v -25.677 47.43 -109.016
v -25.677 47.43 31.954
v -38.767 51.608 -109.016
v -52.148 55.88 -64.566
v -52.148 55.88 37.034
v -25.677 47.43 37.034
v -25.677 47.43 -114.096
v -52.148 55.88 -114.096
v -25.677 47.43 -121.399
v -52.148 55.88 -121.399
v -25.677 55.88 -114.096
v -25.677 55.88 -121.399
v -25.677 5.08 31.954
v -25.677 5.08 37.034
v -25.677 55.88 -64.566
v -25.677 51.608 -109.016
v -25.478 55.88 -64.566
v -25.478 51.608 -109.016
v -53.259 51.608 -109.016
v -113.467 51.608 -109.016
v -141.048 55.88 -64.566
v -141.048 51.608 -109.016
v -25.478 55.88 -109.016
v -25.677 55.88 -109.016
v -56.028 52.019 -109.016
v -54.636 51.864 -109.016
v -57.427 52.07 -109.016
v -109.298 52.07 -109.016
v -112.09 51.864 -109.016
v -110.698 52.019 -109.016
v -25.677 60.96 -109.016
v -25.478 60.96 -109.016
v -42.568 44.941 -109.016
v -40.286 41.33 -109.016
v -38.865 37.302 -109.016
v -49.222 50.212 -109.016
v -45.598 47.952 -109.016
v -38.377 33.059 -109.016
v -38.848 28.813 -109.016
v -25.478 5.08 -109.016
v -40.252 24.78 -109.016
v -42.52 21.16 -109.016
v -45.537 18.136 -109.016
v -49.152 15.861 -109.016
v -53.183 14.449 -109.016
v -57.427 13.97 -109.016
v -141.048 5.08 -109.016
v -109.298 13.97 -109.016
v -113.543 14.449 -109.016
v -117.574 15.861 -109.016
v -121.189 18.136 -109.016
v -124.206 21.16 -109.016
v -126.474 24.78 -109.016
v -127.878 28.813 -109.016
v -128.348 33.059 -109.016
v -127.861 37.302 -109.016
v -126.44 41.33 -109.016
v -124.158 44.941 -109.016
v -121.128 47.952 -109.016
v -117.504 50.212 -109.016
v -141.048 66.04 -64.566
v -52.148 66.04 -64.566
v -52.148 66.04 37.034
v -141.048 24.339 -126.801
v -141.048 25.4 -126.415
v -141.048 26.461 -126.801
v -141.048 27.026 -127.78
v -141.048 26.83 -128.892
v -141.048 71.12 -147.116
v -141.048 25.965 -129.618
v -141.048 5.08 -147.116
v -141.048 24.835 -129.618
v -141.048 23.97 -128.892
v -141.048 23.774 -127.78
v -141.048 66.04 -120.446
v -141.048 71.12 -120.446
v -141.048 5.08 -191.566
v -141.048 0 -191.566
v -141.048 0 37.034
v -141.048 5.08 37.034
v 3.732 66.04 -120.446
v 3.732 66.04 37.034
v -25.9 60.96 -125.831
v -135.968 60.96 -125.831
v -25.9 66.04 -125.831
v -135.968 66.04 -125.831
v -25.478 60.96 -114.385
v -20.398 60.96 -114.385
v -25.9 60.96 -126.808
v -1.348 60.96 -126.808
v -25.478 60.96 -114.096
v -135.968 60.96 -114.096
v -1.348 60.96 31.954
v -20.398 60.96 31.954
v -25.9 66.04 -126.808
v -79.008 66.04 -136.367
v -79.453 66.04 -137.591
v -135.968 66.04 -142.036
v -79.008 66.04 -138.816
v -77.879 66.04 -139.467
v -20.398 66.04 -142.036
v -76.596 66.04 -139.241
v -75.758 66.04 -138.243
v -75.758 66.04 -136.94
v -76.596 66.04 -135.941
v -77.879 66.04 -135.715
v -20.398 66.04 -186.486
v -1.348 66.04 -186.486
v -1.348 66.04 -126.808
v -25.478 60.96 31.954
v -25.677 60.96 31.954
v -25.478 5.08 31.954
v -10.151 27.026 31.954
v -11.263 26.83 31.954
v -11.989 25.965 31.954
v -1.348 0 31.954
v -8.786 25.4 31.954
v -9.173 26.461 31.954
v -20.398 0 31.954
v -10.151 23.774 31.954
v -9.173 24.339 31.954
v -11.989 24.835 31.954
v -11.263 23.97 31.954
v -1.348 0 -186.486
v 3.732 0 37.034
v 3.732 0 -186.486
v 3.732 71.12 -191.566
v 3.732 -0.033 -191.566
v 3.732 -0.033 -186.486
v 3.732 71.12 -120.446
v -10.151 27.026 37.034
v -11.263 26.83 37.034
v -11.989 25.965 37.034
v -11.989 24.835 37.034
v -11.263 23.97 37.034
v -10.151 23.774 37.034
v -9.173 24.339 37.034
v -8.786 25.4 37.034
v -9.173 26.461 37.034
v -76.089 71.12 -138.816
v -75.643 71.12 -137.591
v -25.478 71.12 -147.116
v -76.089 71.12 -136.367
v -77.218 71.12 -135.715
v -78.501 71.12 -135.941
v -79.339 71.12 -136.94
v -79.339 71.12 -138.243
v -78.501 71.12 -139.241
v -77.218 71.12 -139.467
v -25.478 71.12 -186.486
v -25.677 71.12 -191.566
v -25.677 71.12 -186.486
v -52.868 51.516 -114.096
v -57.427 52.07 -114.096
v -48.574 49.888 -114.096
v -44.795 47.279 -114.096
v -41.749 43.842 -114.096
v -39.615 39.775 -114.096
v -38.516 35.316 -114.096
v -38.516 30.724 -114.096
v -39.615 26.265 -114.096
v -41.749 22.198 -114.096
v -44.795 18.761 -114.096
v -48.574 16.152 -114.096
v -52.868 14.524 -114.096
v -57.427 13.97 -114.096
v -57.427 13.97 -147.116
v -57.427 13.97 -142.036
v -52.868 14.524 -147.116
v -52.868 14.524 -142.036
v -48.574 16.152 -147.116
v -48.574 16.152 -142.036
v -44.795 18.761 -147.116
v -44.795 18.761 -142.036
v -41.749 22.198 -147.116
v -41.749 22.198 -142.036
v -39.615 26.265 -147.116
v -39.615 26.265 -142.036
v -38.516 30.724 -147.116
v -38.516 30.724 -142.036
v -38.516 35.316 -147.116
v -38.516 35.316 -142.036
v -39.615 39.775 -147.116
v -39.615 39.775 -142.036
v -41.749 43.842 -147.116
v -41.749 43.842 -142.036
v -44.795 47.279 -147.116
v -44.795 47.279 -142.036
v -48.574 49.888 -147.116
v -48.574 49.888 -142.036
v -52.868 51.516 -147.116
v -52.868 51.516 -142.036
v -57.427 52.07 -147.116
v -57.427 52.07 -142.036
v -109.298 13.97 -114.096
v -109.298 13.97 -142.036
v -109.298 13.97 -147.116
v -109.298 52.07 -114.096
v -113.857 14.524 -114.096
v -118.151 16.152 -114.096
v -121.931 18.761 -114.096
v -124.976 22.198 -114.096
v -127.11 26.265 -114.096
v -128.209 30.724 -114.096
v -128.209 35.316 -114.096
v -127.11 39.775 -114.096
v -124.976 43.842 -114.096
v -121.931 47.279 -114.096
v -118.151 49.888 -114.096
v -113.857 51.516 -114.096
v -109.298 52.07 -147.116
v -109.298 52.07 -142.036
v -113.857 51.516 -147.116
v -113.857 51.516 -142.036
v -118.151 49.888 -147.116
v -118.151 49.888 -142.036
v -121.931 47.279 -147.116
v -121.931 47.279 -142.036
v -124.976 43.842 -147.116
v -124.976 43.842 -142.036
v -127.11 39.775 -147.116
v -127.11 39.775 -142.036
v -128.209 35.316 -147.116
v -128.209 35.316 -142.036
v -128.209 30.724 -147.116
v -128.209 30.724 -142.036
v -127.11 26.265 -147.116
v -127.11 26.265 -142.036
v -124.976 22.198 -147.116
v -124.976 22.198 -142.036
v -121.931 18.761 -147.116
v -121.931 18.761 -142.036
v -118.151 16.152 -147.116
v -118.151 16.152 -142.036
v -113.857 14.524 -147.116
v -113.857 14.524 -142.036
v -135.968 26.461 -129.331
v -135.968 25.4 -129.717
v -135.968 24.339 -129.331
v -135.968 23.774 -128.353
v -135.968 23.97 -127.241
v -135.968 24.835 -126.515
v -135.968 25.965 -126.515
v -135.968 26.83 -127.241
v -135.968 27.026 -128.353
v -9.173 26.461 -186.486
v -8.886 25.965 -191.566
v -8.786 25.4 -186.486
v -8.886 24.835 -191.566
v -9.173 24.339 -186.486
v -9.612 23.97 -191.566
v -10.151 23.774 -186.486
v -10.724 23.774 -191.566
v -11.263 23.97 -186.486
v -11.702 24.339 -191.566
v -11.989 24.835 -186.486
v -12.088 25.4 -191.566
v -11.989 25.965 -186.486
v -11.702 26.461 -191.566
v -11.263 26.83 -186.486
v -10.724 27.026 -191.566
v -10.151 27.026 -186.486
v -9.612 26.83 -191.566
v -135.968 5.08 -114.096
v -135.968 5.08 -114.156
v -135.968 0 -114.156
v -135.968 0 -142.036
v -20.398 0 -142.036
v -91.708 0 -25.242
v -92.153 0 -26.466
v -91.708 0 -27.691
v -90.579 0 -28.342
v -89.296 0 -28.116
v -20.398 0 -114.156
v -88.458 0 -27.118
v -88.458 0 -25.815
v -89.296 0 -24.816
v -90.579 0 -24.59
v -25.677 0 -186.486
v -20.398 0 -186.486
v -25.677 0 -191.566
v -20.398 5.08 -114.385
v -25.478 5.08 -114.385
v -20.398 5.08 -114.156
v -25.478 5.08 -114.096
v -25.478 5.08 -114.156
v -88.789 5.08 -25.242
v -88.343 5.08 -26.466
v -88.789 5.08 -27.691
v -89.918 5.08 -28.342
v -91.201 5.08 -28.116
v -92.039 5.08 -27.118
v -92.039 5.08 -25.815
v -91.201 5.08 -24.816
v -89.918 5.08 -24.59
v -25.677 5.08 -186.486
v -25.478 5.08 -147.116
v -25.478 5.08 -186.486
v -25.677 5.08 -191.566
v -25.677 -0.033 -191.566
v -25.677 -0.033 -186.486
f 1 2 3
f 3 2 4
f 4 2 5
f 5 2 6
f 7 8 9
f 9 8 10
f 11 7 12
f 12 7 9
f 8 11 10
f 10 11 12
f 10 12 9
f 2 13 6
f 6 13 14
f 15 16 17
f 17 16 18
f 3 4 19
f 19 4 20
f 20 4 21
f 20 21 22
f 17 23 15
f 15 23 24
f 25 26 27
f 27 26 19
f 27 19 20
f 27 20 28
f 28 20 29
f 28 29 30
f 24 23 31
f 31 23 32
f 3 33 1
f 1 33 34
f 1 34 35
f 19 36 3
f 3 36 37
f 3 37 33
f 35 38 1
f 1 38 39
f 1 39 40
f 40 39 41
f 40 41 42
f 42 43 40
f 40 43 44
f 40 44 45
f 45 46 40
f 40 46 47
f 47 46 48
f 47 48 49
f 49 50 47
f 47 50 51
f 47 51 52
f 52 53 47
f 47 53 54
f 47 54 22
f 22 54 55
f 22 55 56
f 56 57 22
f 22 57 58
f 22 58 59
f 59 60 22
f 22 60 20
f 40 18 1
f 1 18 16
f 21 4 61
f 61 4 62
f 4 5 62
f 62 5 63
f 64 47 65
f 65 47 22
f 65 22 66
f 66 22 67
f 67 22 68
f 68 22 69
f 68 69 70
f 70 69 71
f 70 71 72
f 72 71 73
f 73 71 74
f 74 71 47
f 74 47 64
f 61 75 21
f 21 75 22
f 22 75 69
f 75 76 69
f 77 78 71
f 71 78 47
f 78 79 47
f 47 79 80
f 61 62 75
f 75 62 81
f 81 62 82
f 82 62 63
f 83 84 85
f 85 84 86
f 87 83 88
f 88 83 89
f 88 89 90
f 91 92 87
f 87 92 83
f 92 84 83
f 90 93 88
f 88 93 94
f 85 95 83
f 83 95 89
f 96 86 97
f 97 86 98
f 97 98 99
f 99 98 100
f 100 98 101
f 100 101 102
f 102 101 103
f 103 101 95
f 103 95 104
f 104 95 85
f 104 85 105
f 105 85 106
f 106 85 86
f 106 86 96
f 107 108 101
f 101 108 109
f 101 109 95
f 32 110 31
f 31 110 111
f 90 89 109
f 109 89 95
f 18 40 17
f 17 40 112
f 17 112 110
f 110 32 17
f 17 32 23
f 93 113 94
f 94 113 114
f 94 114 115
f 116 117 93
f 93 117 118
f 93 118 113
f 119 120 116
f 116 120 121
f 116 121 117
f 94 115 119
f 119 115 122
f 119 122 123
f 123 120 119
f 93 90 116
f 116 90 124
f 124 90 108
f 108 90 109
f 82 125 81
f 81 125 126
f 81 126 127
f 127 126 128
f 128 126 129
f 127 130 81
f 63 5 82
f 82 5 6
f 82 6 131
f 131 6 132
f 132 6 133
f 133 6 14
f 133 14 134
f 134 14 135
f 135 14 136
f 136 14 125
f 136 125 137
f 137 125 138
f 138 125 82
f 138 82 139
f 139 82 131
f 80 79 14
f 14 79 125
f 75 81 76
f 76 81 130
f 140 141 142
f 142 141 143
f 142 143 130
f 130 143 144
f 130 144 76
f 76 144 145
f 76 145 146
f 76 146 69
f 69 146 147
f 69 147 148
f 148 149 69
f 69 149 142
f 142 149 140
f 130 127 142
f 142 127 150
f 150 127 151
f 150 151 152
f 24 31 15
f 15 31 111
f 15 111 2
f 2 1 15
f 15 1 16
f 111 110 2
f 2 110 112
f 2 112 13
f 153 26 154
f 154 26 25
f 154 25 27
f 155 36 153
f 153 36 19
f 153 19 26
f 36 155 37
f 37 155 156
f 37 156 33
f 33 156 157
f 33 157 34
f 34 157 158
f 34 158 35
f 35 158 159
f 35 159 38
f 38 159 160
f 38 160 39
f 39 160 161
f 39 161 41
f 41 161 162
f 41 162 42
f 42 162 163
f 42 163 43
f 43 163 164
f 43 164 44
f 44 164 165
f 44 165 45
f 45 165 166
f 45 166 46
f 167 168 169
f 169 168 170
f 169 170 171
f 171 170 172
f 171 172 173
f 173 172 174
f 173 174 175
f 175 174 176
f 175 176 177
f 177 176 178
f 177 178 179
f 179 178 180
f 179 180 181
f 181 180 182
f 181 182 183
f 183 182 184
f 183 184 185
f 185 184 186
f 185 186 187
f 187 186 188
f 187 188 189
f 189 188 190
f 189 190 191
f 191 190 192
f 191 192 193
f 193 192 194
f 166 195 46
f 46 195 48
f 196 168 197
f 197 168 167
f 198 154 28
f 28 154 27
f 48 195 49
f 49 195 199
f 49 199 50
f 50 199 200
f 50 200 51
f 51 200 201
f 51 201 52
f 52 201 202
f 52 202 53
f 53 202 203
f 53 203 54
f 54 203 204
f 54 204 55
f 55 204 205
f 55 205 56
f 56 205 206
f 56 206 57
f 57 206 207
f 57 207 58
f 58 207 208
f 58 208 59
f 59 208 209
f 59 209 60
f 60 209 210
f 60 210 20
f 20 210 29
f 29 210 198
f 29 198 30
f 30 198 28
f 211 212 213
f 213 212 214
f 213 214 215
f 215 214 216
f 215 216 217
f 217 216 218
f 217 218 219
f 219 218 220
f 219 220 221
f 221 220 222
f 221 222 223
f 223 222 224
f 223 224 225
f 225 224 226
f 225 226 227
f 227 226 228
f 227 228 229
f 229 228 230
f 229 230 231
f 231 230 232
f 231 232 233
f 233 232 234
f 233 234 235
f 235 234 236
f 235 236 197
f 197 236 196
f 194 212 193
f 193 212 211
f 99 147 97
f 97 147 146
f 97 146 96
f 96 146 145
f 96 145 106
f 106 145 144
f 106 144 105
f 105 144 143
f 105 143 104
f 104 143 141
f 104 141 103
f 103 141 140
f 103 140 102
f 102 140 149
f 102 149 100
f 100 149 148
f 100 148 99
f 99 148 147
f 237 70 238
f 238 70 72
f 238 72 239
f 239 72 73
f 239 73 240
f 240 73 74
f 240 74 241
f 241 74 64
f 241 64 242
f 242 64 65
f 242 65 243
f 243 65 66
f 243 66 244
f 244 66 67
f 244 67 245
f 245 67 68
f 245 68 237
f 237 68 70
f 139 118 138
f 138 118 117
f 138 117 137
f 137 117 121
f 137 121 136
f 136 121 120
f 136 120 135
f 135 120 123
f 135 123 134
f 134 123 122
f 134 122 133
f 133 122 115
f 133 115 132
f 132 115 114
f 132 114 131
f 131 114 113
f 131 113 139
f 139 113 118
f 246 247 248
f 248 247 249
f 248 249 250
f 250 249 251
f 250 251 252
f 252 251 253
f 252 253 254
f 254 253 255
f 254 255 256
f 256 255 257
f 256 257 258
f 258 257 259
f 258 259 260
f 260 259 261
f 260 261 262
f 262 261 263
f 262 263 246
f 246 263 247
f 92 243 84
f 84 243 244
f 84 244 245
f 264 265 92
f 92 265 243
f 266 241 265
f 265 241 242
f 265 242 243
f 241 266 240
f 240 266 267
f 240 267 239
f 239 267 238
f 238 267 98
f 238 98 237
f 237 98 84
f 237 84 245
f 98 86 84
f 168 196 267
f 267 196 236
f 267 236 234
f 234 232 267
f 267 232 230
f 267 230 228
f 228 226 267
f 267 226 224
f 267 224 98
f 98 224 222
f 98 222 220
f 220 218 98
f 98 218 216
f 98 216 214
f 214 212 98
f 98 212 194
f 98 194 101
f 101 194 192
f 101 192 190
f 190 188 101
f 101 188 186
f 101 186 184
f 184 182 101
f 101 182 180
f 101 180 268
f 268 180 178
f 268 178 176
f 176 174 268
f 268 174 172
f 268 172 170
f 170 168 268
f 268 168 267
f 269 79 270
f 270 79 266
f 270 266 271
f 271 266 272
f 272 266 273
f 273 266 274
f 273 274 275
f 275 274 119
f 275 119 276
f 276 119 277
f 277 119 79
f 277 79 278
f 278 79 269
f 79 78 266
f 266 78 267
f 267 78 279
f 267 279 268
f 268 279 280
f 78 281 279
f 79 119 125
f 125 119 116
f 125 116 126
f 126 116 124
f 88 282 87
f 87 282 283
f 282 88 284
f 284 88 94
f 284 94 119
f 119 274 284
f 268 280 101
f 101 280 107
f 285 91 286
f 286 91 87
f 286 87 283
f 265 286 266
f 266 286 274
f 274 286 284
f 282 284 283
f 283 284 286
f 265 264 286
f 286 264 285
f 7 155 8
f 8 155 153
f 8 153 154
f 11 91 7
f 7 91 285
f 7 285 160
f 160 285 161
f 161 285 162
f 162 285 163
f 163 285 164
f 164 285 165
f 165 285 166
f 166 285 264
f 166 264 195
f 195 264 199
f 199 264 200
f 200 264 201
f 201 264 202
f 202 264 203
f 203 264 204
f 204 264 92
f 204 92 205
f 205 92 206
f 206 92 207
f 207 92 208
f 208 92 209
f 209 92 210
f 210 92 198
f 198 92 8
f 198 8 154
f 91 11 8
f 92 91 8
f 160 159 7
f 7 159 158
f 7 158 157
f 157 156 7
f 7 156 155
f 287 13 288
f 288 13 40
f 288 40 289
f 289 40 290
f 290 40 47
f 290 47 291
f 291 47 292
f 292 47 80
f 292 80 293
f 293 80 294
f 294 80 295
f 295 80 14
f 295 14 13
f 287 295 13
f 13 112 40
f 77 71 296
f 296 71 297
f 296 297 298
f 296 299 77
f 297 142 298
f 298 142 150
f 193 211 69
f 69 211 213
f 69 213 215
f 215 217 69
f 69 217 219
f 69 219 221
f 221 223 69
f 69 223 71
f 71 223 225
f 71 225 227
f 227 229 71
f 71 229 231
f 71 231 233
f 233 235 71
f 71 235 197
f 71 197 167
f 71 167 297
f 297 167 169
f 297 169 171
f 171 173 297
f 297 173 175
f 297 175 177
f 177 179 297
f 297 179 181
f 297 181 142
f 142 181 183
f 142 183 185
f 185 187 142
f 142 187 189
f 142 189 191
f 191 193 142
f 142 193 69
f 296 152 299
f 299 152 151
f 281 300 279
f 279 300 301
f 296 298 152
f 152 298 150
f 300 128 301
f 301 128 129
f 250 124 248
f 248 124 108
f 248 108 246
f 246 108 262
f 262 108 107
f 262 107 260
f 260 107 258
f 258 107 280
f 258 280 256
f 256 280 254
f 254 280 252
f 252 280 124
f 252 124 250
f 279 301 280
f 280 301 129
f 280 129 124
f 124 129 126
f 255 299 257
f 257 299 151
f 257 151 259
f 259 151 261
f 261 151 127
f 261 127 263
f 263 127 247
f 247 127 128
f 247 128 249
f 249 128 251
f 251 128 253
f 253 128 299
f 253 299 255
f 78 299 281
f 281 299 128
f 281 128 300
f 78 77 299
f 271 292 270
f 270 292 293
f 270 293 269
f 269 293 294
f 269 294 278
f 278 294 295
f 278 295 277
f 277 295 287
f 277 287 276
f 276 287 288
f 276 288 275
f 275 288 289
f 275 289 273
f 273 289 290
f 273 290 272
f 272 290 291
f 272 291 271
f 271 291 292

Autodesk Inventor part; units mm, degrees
ref_plane "YZ Plane" through (0, 0, 0) normal (1, 0, 0) x (0, 1, 0)
ref_plane "XZ Plane" through (0, 0, 0) normal (0, 1, 0) x (-1, 0, 0)
ref_plane "XY Plane" through (0, 0, 0) normal (0, 0, 1) x (1, 0, 0)
sketch "Sketch51" plane through (0, 0, 0) normal (0, 1, 0) x (-1, 0, 0)
  line L0 (1.3484, 37.0338) -> (-3.7316, 37.0338)
  line L1 (-3.7316, 37.0338) -> (-3.7316, -191.5662)
  line L2 (-3.7316, -191.5662) -> (1.3484, -191.5662)
  line L3 (1.3484, -191.5662) -> (1.3484, 37.0338)
  point P0 (0, 0)
  dimension "d172" = 5.08
  dimension "d173" = 228.6
extrude "Extrusion37" add sketch "Sketch51" along normal blind 71.12
sketch "Sketch52" plane through (-1.3484, 0, 37.0338) normal (0, 0, 1) x (1, 0, 0)
  line L0 (5.08, 0) -> (5.08, 71.12) projected
  line L1 (5.08, 71.12) -> (-24.13, 71.12)
  line L2 (-24.13, 71.12) -> (-24.13, 66.04)
  line L3 (-24.13, 66.04) -> (5.08, 66.04)
  line L4 (5.08, 66.04) -> (5.08, 71.12)
  point P0 (1.3484, 0)
  dimension "d176" = 5.08
  dimension "d177" = 29.21
extrude "Extrusion38" add sketch "Sketch52" against normal blind 228.6
sketch "Sketch54" plane through (0, 0, 0) normal (0, -1, 0) x (1, 0, 0)
  line L0 (-20.3984, 37.0338) -> (-141.0484, 37.0338)
  line L1 (-141.0484, 37.0338) -> (-141.0484, -191.5662)
  line L2 (-141.0484, -191.5662) -> (-20.3984, -191.5662)
  line L3 (-20.3984, -191.5662) -> (-20.3984, 37.0338)
  line L4 (-25.4784, 37.0338) -> (-1.3484, 37.0338) projected
  line L5 (-1.3484, -191.5662) -> (-25.4784, -191.5662) projected
  line L6 (-1.3484, -191.5662) -> (-1.3484, 37.0338) projected
  point P0 (0, 0)
  dimension "d180" = 0
  dimension "d181" = 0
  dimension "d182" = 19.05
  dimension "d183" = 120.65
extrude "Extrusion39" add sketch "Sketch54" against normal blind 5.08 contours L3 L2 L1 L0
sketch "Sketch55" plane through (-1.3484, 0, 37.0338) normal (0, 0, 1) x (1, 0, 0)
  line L0 (-139.7, 5.08) -> (-19.05, 5.08) projected
  line L1 (-24.13, 66.04) -> (-24.13, 71.12) projected
  line L2 (-19.05, 5.08) -> (-24.13, 5.08)
  line L3 (-24.13, 5.08) -> (-24.13, 71.12)
  line L4 (-24.13, 71.12) -> (-19.05, 71.12)
  line L5 (-19.05, 71.12) -> (-19.05, 5.08)
  point P0 (1.3484, 0)
extrude "Extrusion40" add sketch "Sketch55" against normal blind 228.6
sketch "Sketch56" plane through (3.7316, 0, 37.0338) normal (0, 0, 1) x (1, 0, 0)
  line L0 (-29.4089, 71.12) -> (0, 71.12)
  line L1 (0, 71.12) -> (0, 0)
  line L2 (0, 0) -> (-29.4089, 0)
  line L3 (-29.4089, 0) -> (-29.4089, 71.12)
  line L4 (0, 71.12) -> (-29.21, 71.12) projected
  point P0 (-3.7316, 0)
  dimension "d275" = 0
extrude "Extrusion41" add sketch "Sketch56" against normal blind 5.08
sketch "Sketch57" plane through (3.7316, 0, -191.5662) normal (0, 0, -1) x (-1, 0, 0)
  line L0 (29.4089, 5.08) -> (29.4089, 71.12) projected
  line L1 (29.4089, 71.12) -> (0, 71.12)
  line L2 (0, 71.12) -> (0, -0.0331)
  line L3 (0, -0.0331) -> (29.4089, -0.0331)
  line L4 (29.4089, -0.0331) -> (29.4089, 71.12)
  point P0 (3.7316, 0)
extrude "Extrusion42" add sketch "Sketch57" against normal blind 5.08
sketch "Sketch58" plane through (0, 71.12, 0) normal (0, 1, 0) x (1, 0, 0)
  line L0 (-25.4784, -31.9538) -> (-25.4784, 186.4862) projected
  line L1 (-141.0484, 191.5662) -> (-141.0484, -37.0338) projected
  line L2 (-25.4784, 109.0162) -> (-141.0484, 109.0162)
  line L3 (-141.0484, 109.0162) -> (-141.0484, 147.1162)
  line L4 (-141.0484, 147.1162) -> (-25.4784, 147.1162)
  line L5 (-25.4784, 147.1162) -> (-25.4784, 109.0162)
  line L6 (-25.6773, 191.5662) -> (-141.0484, 191.5662) projected
  point P0 (0, 0)
  dimension "d192" = 38.1
  dimension "d193" = 44.45
extrude "Extrusion43" add sketch "Sketch58" against normal blind 5.08
sketch "Sketch59" plane through (-141.0484, 71.12, -147.1162) normal (-1, 0, 0) x (0, 0, 1)
  line L0 (0, 0) -> (0, -5.08) projected
  line L1 (184.15, -71.12) -> (-44.45, -71.12) projected
  line L2 (0, 0) -> (5.08, 0)
  line L3 (5.08, 0) -> (5.08, -71.12)
  line L4 (5.08, -71.12) -> (0, -71.12)
  line L5 (0, -71.12) -> (0, 0)
  line L6 (38.1, 0) -> (38.1, -5.08) projected
  line L7 (38.1, 0) -> (33.02, 0)
  line L8 (33.02, 0) -> (33.02, -71.12)
  line L9 (33.02, -71.12) -> (38.1, -71.12)
  line L10 (38.1, -71.12) -> (38.1, 0)
  point P0 (147.1162, -71.12)
  dimension "d196" = 5.08
  dimension "d197" = 5.08
extrude "Extrusion44" add sketch "Sketch59" against normal blind 120.65
sketch "Sketch60" plane through (-141.0484, 0, -191.5662) normal (-1, 0, 0) x (0, 0, 1)
  line L0 (49.53, 5.08) -> (77.47, 5.08) projected
  line L1 (5.08, 0) -> (223.52, 0) projected
  line L2 (49.53, 5.08) -> (77.4104, 5.08)
  line L3 (77.4104, 5.08) -> (77.4104, 0)
  line L4 (77.4104, 0) -> (49.53, 0)
  line L5 (49.53, 0) -> (49.53, 5.08)
  point P0 (191.5662, 0)
extrude "Extrusion45" cut sketch "Sketch60" against normal blind 120.65
sketch "Sketch61" plane through (-25.4784, 66.04, -142.0362) normal (-1, 0, 0) x (0, 0, 1)
  line L0 (0, -66.04) -> (0, 0) projected
  line L1 (27.94, 0) -> (27.94, -60.96) projected
  line L2 (27.94, 0) -> (0, 0) projected
  line L3 (-44.45, -66.04) -> (173.99, -66.04) projected
  line L4 (0, 0) -> (27.6512, 0)
  line L5 (27.6512, 0) -> (27.6512, -66.04)
  line L6 (27.6512, -66.04) -> (0, -66.04)
  line L7 (0, -66.04) -> (0, 0)
  point P0 (142.0362, -66.04)
extrude "Extrusion46" cut sketch "Sketch61" against normal blind 5.08
sketch "Sketch62" plane through (-141.0484, 5.08, -109.0162) normal (-1, 0, 0) x (0, 0, 1)
  line L0 (-33.02, -5.08) -> (-82.55, -5.08) projected
  line L1 (-38.1, 66.04) -> (-38.1, 0) projected
  line L2 (0, 66.04) -> (0, 0) projected
  line L3 (-5.1396, 0) -> (-5.1396, -5.08) projected
  line L4 (146.05, -5.08) -> (-5.1396, -5.08) projected
  line L5 (146.05, -5.08) -> (146.05, 0) projected
  line L6 (0, 0) -> (146.05, 0) projected
  line L7 (0, 66.04) -> (0, 0) projected
  line L8 (0, 66.04) -> (-38.1, 66.04) projected
  line L9 (-38.1, 66.04) -> (-38.1, 0) projected
  line L10 (-82.55, 0) -> (-38.1, 0) projected
  line L11 (-82.55, -5.08) -> (-82.55, 0) projected
  line L12 (-33.02, -5.08) -> (-82.55, -5.08) projected
  line L13 (-33.02, -5.08) -> (-33.02, 60.96) projected
  line L14 (-5.08, 60.96) -> (-33.02, 60.96) projected
  line L15 (-5.08, 60.96) -> (-5.08, 0) projected
  line L16 (0, 66.04) -> (-34.1859, 66.04)
  line L17 (-34.1859, 66.04) -> (-34.1859, -5.08)
  line L18 (-34.1859, -5.08) -> (0, -5.08)
  line L19 (0, -5.08) -> (0, 66.04)
  line L20 (-5.1396, 0) -> (-5.08, 0) projected
  point P0 (109.0162, -5.08)
extrude "Extrusion47" add sketch "Sketch62" against normal blind 5.08 contours L0 L17 L8 L2 L19 L4 L3 L20 L15 L14 L13 | L13 L14 L15 L20 L3 L18
sketch "Sketch63" plane through (3.7316, 0, -191.5662) normal (0, 0, -1) x (-1, 0, 0)
  line L0 (144.78, 0) -> (29.4089, 0) projected
  line L1 (29.4089, 5.08) -> (29.4089, 71.12) projected
  point P0 (3.7316, 0)
  point P1 (14.1689, 25.4)
  point P2 (0, 0)
  dimension "d206" = 25.4
  dimension "d207" = 15.24
hole "Hole8" at (-10.4373, 25.4, -191.5662) direction (0, 0, 1) diameter 3.302 end through all
sketch "Sketch64" plane through (-141.0484, 0, -191.5662) normal (-1, 0, 0) x (0, 0, 1)
  line L0 (228.6, 0) -> (0, 0) projected
  line L1 (44.45, 71.12) -> (44.45, 5.08) projected
  point P0 (191.5662, 0)
  point P1 (63.5, 25.4)
  dimension "d215" = 25.4
  dimension "d216" = 19.05
hole "Hole9" at (-141.0484, 25.4, -128.0662) direction (1, 0, 0) diameter 3.302 depth 25.4 tip angle 118.188
sketch "Sketch66" plane through (0, 71.12, 0) normal (0, 1, 0) x (1, 0, 0)
  line L0 (-141.0484, 109.0162) -> (-141.0484, 147.1162) projected
  line L1 (-25.4784, 109.0162) -> (-141.0484, 109.0162) projected
  line L2 (-141.0484, 147.1162) -> (-25.4784, 147.1162) projected
  point P0 (0, 0)
  point P1 (-77.5484, 137.5912)
  dimension "d227" = 9.525
hole "Hole10" at (-77.5484, 71.12, -137.5912) direction (0, -1, 0) diameter 3.81 depth 25.4 tip angle 118.188
sketch "Sketch69" plane through (-141.0484, 71.12, -109.0162) normal (0, 0, 1) x (1, 0, 0)
  line L0 (31.75, -38.1) -> (83.6211, -38.1) construction
  line L1 (31.75, -19.05) -> (83.6211, -19.05)
  line L2 (83.6211, -57.15) -> (31.75, -57.15)
  arc A0 (31.75, -19.05) -> (31.75, -57.15) centre (31.75, -38.1) ccw
  arc A1 (83.6211, -57.15) -> (83.6211, -19.05) centre (83.6211, -38.1) ccw
  line L3 (0, 0) -> (0, -66.04) projected
  line L4 (115.3711, -66.04) -> (115.3711, 0) projected
  line L5 (115.57, 0) -> (0, 0) projected
  point P0 (141.0484, -71.12)
  point P1 (57.6856, -38.1)
  dimension "d252" = 31.75
  dimension "d253" = 31.75
  dimension "d254" = 38.1
  dimension "d255" = 19.05
extrude "Extrusion49" cut sketch "Sketch69" against normal blind 230.1875
sketch "Sketch70" plane through (0, 71.12, 0) normal (0, 1, 0) x (1, 0, 0)
  line L0 (-20.3984, -31.9538) -> (-20.3984, 114.385) projected
  line L1 (-25.4784, -31.9538) -> (-25.4784, 109.0162) projected
  line L2 (-25.4784, 109.0162) -> (-141.0484, 109.0162) projected
  line L3 (-141.0484, 191.5662) -> (-141.0484, -37.0338) projected
  line L4 (-141.0484, -37.0338) -> (-25.6773, -37.0338) projected
  line L5 (-141.0484, 109.0162) -> (-141.0484, 147.1162) projected
  line L6 (-141.0484, 109.0162) -> (-25.6773, 109.0162)
  line L7 (-25.6773, 109.0162) -> (-25.6773, -37.0338)
  line L8 (-25.6773, -37.0338) -> (-141.0484, -37.0338)
  line L9 (-141.0484, -37.0338) -> (-141.0484, 109.0162)
  point P0 (0, 0)
extrude "Extrusion50" add sketch "Sketch70" against normal blind 15.24
sketch "Sketch71" plane through (0, 71.12, 0) normal (0, 1, 0) x (1, 0, 0)
  line L0 (-25.6773, -37.0338) -> (3.7316, -37.0338) projected
  line L1 (3.7316, -37.0338) -> (-155.1721, -37.0338)
  line L2 (-155.1721, -37.0338) -> (-155.1721, 120.4462)
  line L3 (-155.1721, 120.4462) -> (3.7316, 120.4462)
  line L4 (3.7316, 120.4462) -> (3.7316, -37.0338)
  point P0 (0, 0)
  dimension "d260" = 157.48
extrude "Extrusion51" cut sketch "Sketch71" against normal blind 5.08
sketch "Sketch72" plane through (0, 66.04, 0) normal (0, 1, 0) x (1, 0, 0)
  line L0 (3.7316, -37.0338) -> (3.7316, -31.9538) projected
  line L1 (3.7316, -37.0338) -> (-25.8998, -37.0338)
  line L2 (-25.8998, -37.0338) -> (-25.8998, 126.8083)
  line L3 (-25.8998, 126.8083) -> (3.7316, 126.8083)
  line L4 (3.7316, 126.8083) -> (3.7316, -37.0338)
  point P0 (0, 0)
extrude "Extrusion52" add sketch "Sketch72" against normal blind 5.08
sketch "Sketch73" plane through (0, 66.04, 0) normal (0, 1, 0) x (1, 0, 0)
  line L0 (-137.7579, 102.3229) -> (-23.4148, 102.3229)
  line L1 (-23.4148, 102.3229) -> (-23.4148, 125.8312)
  line L2 (-23.4148, 125.8312) -> (-137.7579, 125.8312)
  line L3 (-137.7579, 125.8312) -> (-137.7579, 102.3229)
  point P0 (0, 0)
extrude "Extrusion53" add sketch "Sketch73" against normal blind 5.08
sketch "Sketch74" plane through (0, 66.04, 0) normal (0, 1, 0) x (1, 0, 0)
  line L0 (-141.0484, -37.0338) -> (-141.0484, 120.4462) projected
  line L1 (-141.0484, -37.0338) -> (-52.1484, -37.0338)
  line L2 (-52.1484, -37.0338) -> (-52.1484, 64.5662)
  line L3 (-52.1484, 64.5662) -> (-141.0484, 64.5662)
  line L4 (-141.0484, 64.5662) -> (-141.0484, -37.0338)
  point P0 (0, 0)
  dimension "d267" = 88.9
  dimension "d268" = 101.6
extrude "Extrusion54" cut sketch "Sketch74" against normal blind 37.7825
sketch "Sketch76" plane through (-141.0484, 0, -191.5662) normal (-1, 0, 0) x (0, 0, 1)
  line L0 (82.55, 55.88) -> (82.55, 5.08) projected
  line L1 (127, 55.88) -> (82.55, 55.88) projected
  line L2 (82.55, 55.88) -> (127, 55.88)
  line L3 (127, 55.88) -> (82.55, 51.6083)
  line L4 (82.55, 51.6083) -> (82.55, 55.88)
  point P0 (191.5662, 0)
extrude "Extrusion55" add sketch "Sketch76" against normal blind 116.205
sketch "Sketch77" plane through (-141.0484, 0, 37.0338) normal (0, 0, 1) x (1, 0, 0)
  line L0 (115.3711, 55.88) -> (88.9, 55.88) projected
  line L1 (115.3711, 5.08) -> (115.3711, 55.88) projected
  line L2 (88.9, 55.88) -> (0, 55.88) projected
  line L3 (88.9, 55.88) -> (115.3711, 55.88)
  line L4 (115.3711, 47.4297) -> (88.9, 55.88)
  point P0 (141.0484, 0)
extrude "Extrusion56" add sketch "Sketch77" against normal blind 158.4325
sketch "Sketch78" plane through (0, 5.08, 0) normal (0, 1, 0) x (1, 0, 0)
  line L0 (-141.0484, -37.0338) -> (-25.6773, -37.0338) projected
  line L1 (-141.0484, 109.0162) -> (-141.0484, -37.0338) projected
  point P0 (0, 0)
  point P1 (-90.2484, 26.4662)
  dimension "d276" = 63.5
  dimension "d277" = 50.8
hole "Hole12" at (-90.2484, 5.08, -26.4662) direction (0, -1, 0) diameter 3.81 depth 25.4 tip angle 118.188
equation "\"d172\" = WallWidth"
equation "\"d173\" = PartLength"
equation "\"d174\" = CPDeckHeight"
equation "\"d176\" = WallWidth"
equation "\"d177\" = 2 * WallWidth + ControlPlateShelfLength"
equation "\"d178\" = PartLength"
equation "\"d182\" = ControlPlateShelfLength"
equation "\"d183\" = CPDWidthHole"
equation "\"d184\" = WallWidth"
equation "\"d186\" = PartLength"
equation "\"d188\" = WallWidth"
equation "\"d190\" = WallWidth"
equation "\"d194\" = WallWidth"
equation "\"d196\" = WallWidth"
equation "\"d197\" = WallWidth"
equation "\"d202\" = WallWidth"
equation "\"d204\" = WallWidth"
equation "\"d261\" = WallWidth"
equation "\"d263\" = WallWidth"
equation "\"d265\" = WallWidth"
equation "\"DSLength\" = 1371.6"
equation "\"DSWidth\" = 304.8"
equation "\"DCDeckHeight\" = 76.2"
equation "\"WallWidth\" = 5.08"
equation "\"EdgeAngle\" = 10deg"
equation "\"LengthCuts\" = 152.4"
equation "\"WidthCuts\" = 50.8"
equation "\"PartLength\" = 228.6"
equation "\"PartWidth\" = 152.4"
equation "\"BoltHoldDiam\" = 6.35"
equation "\"ControlPlateLength\" = 228.6"
equation "\"ControlPlateWidth\" = 228.6"
equation "\"ControlPlateShelfLength\" = 19.05"
equation "\"ControlHoleLength\" = 190.5"
equation "\"ControlHoleWidth\" = 190.5"
equation "\"ControlHoleFromSide\" = 63.5"
equation "\"ControlHoleBoltHoleMid\" = 9.525"
equation "\"CPDeckHeight\" = 71.12"
equation "\"CPFromSide\" = 63.5"
equation "\"CPFromBack\" = 63.5"
equation "\"DU1CHWidth\" = 69.85"
equation "\"DU1CHLength\" = 146.05"
equation "\"ControlPlateScrewLength\" = 76.2"
equation "\"DSBackHeight\" = 127"
equation "\"BackShelf\" = 25.4"
equation "\"MainAngle\" = 168.22deg"
equation "\"CPDWidthHole\" = 120.65"
equation "\"CPDLengthHole\" = 146.05"
equation "\"DownBackHeight\" = 130.7084"
properties part number "CPLRightThree"
